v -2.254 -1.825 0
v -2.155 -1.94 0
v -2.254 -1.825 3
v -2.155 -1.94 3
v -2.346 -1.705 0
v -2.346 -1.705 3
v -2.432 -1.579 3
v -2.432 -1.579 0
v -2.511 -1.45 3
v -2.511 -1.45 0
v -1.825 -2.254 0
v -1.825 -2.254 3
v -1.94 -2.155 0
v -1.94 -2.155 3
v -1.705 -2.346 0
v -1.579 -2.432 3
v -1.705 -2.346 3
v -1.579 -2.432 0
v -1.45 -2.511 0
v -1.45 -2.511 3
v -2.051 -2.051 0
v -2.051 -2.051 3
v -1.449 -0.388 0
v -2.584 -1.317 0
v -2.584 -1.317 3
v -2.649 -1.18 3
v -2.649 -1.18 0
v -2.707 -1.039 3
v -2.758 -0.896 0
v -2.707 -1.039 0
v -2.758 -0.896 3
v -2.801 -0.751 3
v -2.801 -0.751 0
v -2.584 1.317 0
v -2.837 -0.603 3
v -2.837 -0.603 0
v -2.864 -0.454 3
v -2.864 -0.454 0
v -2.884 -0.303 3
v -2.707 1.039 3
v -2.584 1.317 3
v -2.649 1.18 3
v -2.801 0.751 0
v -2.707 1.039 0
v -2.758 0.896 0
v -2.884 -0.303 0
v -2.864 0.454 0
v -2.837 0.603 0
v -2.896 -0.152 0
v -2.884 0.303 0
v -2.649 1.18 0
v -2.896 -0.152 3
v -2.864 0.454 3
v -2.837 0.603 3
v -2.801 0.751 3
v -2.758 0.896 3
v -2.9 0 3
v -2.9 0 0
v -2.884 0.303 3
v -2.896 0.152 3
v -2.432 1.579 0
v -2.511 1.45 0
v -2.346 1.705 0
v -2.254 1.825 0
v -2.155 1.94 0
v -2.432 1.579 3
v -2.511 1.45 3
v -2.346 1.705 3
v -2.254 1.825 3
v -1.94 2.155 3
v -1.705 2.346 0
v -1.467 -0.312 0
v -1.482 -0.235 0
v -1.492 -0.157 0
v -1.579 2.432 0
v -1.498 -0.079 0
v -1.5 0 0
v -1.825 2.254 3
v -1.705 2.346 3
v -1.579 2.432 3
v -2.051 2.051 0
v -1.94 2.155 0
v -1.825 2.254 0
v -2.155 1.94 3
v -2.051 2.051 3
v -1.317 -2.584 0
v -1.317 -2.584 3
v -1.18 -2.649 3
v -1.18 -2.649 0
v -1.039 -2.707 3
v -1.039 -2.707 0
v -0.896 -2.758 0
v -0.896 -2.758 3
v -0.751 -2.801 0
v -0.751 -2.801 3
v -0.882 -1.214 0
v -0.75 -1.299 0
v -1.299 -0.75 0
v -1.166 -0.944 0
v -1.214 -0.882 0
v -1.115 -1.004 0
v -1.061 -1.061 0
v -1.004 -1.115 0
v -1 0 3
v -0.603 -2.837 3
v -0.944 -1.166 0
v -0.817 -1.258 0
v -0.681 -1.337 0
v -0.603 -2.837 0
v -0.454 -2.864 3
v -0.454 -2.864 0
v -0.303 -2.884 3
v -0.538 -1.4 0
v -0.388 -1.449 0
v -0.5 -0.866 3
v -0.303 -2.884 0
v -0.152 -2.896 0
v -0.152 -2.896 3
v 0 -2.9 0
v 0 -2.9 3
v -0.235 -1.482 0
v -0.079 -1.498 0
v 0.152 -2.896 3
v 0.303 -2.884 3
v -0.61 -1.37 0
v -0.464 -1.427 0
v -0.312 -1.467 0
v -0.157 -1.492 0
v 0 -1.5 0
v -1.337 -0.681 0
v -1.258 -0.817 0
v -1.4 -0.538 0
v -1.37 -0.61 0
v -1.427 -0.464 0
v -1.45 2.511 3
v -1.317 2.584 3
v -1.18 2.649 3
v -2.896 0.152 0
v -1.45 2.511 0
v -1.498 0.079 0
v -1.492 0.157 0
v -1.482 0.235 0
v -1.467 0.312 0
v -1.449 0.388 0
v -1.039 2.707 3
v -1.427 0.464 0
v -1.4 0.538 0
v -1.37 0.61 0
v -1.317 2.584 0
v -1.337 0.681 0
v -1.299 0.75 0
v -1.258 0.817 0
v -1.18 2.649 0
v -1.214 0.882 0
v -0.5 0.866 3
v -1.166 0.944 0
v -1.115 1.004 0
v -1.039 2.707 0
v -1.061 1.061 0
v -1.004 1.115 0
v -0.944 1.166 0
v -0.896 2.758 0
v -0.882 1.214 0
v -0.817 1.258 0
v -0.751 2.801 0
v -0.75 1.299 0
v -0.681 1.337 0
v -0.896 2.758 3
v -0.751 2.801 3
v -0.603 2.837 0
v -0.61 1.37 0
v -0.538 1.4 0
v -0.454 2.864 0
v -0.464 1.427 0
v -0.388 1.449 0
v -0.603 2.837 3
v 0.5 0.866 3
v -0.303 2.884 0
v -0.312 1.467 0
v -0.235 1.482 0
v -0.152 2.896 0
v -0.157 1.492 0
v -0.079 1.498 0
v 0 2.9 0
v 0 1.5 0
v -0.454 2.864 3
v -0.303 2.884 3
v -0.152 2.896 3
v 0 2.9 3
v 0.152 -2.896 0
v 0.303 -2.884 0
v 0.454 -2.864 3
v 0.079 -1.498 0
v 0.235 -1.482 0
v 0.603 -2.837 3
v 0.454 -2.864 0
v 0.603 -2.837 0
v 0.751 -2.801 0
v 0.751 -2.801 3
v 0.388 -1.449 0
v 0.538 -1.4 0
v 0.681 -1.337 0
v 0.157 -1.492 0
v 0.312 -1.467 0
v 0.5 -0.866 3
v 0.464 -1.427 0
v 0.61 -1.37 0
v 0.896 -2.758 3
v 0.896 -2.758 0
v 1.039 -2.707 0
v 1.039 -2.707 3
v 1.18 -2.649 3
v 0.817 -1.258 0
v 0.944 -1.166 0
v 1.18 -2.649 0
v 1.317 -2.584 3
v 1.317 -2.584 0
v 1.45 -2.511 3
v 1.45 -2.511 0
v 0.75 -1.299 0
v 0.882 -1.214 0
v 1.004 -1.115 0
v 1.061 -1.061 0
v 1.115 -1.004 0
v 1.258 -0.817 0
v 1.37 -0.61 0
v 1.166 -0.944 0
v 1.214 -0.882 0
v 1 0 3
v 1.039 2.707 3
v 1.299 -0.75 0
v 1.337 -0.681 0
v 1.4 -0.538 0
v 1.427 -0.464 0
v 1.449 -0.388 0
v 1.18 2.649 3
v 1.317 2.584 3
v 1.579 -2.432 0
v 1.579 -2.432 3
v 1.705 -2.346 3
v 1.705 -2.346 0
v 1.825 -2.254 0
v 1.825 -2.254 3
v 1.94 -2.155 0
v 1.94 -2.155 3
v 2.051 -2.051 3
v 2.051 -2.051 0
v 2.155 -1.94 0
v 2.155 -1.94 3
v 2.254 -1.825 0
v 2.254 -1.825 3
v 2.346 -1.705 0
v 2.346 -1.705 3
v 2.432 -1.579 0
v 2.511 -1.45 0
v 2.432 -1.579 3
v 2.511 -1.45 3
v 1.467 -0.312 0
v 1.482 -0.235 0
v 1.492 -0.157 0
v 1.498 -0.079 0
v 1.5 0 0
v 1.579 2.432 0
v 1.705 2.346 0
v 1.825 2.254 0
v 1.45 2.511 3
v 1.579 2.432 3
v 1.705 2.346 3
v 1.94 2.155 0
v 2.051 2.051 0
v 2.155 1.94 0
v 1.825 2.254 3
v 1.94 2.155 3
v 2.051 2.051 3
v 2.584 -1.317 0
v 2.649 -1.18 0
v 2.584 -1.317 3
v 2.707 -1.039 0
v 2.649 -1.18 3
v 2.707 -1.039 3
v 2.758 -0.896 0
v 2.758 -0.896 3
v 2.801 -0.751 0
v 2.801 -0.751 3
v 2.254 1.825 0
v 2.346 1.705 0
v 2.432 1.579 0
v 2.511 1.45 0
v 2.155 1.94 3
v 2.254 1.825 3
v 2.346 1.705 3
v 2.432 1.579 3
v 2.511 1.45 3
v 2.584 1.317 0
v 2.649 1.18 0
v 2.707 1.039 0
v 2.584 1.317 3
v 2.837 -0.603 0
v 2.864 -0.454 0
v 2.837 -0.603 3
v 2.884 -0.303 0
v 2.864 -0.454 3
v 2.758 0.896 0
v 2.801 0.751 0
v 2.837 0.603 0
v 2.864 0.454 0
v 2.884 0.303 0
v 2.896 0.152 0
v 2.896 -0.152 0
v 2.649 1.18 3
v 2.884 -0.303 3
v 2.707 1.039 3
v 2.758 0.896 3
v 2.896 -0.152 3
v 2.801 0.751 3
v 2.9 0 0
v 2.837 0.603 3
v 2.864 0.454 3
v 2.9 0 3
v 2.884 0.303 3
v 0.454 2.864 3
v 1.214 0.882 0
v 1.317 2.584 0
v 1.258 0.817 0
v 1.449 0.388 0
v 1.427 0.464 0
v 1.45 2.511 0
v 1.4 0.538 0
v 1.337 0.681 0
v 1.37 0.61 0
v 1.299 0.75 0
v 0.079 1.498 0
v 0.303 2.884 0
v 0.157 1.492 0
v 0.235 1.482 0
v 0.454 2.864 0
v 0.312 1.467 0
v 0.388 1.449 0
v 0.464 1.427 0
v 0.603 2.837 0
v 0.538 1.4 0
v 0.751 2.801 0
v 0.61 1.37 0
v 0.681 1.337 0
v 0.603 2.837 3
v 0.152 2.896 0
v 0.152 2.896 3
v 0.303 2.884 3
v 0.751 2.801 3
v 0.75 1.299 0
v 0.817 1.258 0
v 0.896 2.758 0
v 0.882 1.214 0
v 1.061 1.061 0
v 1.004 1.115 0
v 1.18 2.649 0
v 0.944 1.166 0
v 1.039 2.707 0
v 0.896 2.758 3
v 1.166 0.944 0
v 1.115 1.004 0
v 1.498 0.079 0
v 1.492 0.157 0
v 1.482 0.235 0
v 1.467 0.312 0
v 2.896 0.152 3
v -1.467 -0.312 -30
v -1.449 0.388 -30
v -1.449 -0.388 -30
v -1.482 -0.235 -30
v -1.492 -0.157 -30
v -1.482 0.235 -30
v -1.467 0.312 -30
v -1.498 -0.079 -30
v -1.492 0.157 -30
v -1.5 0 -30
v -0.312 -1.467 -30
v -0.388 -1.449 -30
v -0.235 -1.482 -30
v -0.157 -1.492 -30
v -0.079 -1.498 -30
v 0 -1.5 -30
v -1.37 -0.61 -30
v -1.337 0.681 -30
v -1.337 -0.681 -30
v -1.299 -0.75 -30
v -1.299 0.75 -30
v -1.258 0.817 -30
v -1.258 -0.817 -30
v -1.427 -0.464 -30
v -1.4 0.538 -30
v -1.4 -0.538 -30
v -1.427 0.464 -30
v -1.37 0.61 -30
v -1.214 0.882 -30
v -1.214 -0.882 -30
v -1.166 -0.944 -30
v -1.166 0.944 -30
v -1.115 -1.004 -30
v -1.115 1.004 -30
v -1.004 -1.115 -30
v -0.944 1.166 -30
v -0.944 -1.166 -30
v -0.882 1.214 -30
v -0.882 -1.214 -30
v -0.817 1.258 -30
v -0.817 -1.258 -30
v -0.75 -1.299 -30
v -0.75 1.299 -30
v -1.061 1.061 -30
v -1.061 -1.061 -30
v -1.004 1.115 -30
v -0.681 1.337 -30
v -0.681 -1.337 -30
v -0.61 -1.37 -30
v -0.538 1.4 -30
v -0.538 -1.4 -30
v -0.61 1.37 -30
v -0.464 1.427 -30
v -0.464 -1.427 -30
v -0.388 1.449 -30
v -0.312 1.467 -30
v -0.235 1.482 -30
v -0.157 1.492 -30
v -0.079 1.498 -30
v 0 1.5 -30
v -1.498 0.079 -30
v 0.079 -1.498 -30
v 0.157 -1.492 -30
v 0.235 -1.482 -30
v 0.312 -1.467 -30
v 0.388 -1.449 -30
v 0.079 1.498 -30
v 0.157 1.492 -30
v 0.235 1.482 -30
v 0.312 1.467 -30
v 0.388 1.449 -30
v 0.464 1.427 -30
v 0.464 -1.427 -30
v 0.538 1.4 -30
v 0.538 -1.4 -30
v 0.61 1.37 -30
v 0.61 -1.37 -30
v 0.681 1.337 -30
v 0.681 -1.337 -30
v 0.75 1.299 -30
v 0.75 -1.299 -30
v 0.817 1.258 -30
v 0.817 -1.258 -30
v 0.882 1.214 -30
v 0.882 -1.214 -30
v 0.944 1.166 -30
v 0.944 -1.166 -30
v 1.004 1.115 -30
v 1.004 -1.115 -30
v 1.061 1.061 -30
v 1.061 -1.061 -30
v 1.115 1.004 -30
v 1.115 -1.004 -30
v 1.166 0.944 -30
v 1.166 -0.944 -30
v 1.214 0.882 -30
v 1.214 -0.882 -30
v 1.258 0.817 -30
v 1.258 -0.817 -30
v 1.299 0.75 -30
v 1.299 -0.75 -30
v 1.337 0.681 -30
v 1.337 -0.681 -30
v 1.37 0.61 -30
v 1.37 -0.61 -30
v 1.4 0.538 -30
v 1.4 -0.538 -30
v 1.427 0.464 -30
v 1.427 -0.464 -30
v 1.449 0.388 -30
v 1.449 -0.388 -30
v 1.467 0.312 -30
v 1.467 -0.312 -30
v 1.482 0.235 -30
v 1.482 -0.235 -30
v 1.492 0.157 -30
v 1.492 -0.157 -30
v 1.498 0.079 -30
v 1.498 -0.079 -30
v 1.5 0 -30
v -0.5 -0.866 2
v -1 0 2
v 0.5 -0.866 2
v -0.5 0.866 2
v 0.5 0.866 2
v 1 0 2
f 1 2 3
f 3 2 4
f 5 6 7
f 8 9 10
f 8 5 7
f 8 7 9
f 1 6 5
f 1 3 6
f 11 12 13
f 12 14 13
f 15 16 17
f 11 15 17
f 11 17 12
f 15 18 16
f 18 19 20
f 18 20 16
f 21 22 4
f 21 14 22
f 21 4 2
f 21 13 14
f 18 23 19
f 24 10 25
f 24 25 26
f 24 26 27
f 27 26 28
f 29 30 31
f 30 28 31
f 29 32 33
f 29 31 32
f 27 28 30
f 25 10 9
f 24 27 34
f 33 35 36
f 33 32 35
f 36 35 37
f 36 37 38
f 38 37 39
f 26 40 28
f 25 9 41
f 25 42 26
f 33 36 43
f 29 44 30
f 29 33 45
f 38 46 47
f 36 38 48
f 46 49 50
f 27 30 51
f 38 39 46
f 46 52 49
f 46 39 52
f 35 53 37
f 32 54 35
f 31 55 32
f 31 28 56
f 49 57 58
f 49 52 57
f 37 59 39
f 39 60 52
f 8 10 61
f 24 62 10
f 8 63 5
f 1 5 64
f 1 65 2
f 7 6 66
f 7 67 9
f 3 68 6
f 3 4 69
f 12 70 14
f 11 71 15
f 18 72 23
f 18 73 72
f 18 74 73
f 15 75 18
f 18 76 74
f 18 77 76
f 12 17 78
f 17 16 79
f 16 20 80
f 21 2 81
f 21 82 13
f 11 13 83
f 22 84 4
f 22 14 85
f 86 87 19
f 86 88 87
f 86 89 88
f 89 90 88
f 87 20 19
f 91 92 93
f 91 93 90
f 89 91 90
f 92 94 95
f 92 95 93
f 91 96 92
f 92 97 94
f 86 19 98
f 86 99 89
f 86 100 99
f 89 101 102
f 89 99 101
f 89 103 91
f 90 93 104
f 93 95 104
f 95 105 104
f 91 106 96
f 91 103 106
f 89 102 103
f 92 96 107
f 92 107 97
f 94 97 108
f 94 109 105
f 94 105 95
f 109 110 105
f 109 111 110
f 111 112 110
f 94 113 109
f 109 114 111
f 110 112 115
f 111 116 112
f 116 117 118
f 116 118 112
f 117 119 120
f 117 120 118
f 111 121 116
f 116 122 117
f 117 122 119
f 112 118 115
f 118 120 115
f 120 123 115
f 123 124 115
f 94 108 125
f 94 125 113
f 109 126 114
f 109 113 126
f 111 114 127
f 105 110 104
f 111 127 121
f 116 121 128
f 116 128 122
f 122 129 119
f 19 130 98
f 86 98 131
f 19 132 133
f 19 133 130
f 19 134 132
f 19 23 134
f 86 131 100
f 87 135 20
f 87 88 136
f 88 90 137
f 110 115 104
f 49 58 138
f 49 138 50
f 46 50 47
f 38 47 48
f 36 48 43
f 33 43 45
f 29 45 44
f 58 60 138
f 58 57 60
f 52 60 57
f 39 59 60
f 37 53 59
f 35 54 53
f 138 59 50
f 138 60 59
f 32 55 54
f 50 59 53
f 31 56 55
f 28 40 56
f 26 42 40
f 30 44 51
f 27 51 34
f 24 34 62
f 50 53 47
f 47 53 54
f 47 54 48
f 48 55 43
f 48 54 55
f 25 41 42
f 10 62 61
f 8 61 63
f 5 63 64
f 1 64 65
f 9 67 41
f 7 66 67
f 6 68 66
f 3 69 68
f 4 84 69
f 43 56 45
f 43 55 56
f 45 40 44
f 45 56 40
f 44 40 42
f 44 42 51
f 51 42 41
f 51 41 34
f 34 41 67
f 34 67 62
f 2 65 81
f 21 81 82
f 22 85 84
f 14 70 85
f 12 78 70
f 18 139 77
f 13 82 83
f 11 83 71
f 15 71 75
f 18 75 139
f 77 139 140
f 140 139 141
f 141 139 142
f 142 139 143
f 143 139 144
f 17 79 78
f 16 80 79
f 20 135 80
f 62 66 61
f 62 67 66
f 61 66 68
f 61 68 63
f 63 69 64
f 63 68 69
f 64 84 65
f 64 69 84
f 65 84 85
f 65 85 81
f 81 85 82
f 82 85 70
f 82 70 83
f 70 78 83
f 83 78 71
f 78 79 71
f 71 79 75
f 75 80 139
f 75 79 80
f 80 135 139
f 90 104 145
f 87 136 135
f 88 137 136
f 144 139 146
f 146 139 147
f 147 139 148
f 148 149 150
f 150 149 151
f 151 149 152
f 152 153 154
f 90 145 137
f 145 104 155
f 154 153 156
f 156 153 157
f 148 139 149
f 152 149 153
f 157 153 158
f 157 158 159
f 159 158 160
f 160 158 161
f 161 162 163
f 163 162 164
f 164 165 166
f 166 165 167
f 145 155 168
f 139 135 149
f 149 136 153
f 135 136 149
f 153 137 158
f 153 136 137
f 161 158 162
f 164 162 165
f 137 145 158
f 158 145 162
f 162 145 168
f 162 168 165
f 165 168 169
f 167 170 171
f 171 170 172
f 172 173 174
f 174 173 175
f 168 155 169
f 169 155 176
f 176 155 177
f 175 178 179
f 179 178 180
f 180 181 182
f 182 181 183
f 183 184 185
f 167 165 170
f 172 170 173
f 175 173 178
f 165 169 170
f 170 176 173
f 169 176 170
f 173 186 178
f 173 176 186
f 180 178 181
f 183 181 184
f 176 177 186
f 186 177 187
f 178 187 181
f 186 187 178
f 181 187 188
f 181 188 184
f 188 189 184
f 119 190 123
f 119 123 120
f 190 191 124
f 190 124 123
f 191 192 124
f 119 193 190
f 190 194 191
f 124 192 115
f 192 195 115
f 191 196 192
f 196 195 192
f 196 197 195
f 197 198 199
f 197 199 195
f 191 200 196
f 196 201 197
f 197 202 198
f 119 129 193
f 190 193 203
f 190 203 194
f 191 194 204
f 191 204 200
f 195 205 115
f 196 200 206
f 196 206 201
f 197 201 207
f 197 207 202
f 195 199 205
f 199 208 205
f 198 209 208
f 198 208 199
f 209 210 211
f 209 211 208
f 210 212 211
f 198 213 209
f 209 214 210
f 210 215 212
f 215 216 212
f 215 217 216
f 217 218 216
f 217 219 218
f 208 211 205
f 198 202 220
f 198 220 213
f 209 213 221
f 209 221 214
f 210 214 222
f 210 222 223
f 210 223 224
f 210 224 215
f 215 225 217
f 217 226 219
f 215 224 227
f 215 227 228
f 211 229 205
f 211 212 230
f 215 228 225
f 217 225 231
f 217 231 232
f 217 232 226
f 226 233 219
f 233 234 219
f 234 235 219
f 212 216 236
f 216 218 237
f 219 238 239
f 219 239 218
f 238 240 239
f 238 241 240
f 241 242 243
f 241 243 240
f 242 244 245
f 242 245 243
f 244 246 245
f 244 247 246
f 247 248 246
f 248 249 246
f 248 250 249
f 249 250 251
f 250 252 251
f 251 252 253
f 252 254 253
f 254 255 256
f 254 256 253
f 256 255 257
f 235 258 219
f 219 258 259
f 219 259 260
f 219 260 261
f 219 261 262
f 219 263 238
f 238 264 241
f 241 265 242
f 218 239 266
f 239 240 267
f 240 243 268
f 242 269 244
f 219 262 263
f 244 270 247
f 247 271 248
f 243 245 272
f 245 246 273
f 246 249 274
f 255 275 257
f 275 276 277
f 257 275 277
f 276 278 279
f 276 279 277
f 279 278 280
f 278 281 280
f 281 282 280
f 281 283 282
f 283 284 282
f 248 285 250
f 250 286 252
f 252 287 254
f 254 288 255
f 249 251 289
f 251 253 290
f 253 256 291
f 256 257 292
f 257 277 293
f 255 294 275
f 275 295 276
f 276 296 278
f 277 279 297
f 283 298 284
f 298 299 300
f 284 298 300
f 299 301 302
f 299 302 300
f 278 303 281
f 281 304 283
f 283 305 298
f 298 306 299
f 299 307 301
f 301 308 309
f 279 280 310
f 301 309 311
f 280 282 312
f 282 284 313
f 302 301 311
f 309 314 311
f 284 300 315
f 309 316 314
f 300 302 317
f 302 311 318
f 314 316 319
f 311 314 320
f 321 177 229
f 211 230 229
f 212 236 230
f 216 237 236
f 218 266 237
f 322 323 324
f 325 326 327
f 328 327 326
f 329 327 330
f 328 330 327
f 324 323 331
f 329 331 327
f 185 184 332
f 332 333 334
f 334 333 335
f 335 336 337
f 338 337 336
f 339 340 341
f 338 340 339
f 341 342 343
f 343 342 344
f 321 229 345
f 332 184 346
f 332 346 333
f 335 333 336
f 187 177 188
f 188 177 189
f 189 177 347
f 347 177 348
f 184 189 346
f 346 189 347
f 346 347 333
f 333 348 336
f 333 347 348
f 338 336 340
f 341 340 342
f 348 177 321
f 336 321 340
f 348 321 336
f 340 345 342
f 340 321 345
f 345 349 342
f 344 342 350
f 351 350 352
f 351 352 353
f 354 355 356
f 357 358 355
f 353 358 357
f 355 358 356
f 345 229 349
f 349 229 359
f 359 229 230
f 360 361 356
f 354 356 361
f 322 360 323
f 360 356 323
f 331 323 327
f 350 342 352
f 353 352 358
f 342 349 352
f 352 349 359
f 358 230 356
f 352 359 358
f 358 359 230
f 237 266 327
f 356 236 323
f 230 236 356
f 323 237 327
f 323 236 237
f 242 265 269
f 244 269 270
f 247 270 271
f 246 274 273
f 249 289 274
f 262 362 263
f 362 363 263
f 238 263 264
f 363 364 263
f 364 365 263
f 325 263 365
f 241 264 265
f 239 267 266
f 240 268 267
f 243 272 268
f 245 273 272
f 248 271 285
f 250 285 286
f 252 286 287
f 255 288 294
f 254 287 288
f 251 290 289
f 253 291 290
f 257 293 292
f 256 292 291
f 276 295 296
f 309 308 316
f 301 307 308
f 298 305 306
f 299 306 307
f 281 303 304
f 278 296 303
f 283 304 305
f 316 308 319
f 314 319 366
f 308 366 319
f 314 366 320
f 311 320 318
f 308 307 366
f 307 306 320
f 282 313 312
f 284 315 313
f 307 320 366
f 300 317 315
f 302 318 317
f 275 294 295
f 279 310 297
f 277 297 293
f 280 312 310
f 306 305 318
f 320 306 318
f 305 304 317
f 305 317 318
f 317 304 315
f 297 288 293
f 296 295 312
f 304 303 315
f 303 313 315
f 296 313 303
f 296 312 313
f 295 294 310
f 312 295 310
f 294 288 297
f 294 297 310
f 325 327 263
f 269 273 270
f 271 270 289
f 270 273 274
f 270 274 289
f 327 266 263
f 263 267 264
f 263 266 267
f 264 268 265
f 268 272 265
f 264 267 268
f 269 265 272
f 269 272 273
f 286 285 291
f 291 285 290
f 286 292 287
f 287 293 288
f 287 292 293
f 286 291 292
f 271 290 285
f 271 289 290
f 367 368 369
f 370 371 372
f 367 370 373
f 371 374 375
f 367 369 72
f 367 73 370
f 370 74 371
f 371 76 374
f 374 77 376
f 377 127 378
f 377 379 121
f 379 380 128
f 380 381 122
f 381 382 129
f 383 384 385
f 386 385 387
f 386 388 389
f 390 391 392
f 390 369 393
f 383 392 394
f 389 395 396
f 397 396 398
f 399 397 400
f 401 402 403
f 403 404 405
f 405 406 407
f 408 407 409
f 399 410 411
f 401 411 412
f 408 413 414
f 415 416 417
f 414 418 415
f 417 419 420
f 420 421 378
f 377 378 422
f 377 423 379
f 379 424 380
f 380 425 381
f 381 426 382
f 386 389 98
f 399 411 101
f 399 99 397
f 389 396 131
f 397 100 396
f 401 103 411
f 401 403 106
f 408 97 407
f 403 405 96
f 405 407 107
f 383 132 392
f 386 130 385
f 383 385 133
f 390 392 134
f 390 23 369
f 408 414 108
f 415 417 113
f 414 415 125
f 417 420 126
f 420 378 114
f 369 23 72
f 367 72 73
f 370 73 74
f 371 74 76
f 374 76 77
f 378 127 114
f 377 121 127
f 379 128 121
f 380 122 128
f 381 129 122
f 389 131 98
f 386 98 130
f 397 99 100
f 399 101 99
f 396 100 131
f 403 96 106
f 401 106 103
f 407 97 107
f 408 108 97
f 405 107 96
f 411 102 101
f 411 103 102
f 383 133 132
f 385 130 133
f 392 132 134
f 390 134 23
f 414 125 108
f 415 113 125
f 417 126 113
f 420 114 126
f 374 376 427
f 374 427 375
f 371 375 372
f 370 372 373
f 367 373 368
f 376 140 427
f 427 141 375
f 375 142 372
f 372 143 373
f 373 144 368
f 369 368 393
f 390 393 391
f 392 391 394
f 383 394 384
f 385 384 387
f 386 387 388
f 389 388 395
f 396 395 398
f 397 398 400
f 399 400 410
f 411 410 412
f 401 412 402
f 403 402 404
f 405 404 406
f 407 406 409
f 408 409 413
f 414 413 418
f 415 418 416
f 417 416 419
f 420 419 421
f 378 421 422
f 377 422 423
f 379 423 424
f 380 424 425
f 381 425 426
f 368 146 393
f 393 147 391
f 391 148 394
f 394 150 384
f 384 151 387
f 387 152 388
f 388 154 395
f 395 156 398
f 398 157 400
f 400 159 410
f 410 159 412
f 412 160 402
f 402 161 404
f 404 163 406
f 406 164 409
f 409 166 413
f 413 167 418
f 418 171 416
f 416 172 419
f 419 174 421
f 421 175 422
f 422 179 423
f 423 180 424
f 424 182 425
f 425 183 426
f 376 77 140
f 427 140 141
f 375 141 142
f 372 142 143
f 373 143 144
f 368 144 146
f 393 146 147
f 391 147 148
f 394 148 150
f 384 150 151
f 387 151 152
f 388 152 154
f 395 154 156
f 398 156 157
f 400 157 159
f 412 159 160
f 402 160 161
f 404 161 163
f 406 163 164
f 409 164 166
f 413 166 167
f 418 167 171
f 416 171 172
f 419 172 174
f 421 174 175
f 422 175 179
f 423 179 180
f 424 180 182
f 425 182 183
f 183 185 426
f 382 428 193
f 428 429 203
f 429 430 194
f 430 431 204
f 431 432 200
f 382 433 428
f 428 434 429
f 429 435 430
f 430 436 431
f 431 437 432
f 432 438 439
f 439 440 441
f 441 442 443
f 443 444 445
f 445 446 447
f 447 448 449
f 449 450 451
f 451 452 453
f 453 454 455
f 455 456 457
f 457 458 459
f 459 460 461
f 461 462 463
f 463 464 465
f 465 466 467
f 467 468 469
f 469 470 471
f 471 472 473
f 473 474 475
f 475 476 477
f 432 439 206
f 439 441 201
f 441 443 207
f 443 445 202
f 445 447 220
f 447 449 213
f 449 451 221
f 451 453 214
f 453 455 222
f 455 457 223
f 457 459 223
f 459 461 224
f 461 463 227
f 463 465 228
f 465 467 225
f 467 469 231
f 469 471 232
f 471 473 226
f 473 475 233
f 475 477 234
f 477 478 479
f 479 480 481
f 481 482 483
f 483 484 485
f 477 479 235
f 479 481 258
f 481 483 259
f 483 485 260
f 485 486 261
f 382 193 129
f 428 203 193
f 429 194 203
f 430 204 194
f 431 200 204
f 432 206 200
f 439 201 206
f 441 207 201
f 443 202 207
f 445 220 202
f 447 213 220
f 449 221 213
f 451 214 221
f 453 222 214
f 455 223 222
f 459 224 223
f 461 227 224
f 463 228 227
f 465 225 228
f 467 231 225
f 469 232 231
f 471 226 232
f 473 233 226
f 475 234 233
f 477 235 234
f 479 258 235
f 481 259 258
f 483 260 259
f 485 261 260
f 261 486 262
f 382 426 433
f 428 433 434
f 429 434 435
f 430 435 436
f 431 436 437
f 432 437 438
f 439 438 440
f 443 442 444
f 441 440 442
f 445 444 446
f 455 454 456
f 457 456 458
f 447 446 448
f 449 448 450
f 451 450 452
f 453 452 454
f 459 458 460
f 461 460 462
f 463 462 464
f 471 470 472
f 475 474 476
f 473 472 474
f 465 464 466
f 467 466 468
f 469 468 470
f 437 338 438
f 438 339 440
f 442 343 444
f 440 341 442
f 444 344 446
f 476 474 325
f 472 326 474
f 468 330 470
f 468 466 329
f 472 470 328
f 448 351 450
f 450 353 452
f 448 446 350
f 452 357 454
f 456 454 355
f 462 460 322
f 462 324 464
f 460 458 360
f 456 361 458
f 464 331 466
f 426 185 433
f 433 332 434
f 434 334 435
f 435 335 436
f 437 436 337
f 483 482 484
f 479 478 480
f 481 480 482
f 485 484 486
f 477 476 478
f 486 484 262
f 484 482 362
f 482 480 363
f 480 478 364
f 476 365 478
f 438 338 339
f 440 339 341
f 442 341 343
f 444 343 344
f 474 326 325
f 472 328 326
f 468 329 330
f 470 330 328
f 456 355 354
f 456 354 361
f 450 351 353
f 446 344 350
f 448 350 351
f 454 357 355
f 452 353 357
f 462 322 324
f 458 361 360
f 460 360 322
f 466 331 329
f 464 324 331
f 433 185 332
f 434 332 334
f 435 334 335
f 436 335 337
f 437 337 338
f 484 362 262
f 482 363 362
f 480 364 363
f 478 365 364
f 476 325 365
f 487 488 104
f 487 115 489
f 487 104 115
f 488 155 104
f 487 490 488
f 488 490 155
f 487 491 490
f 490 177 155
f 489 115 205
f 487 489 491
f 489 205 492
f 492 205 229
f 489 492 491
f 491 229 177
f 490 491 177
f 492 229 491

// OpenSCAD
// file: C:/gh/oomlout_oobb_part_motor_gearbox_wave_drive_version_5/parts/oobb_part_motor_gearbox_wave_drive_version_5_12_to_1_reduction/compact_helpers.scad
// Reusable native geometry helpers.
function polar(r,a)=[r*cos(a),r*sin(a)];
function rotate_point(p,a)=[p[0]*cos(a)-p[1]*sin(a),p[0]*sin(a)+p[1]*cos(a)];
function profile_point(t)=let(
    s=sqrt(pow(pitch_radius,2)-pow(eccentricity*sin(cavity_count*t),2)),
    r=eccentricity*cos(cavity_count*t)+s,
    xi=atan2(eccentricity*cavity_count*sin(cavity_count*t),s),
    rr=roller_radius+profile_clearance)
    [r*cos(t)+rr*cos(t+xi),r*sin(t)+rr*sin(t+xi)];
function profile_points(upper=false)=[for(i=[0:cavity_count*profile_samples_per_cavity-1])
    rotate_point(profile_point(360*i/(cavity_count*profile_samples_per_cavity)),0)];
function roller_position(i,a,upper=false)=let(
    t=-a/roller_count+360*i/roller_count,
    rel=t-a-(upper?180:0),
    r=eccentricity*cos(rel)+sqrt(pow(pitch_radius,2)-pow(eccentricity*sin(rel),2))) polar(r,t);
module tube(ro,ri,h) { difference() { cylinder(r=ro,h=h); translate([0,0,-eps]) cylinder(r=ri,h=h+2*eps); } }
module screw_hole(size,h) { scale([1,1,h]) { if(size=="m2") oobb_hole_m2(); if(size=="m3") oobb_hole_m3(); if(size=="m6") oobb_hole_m6(); } }
module socket_recess(size,depth) {
    // OOBB socket head starts at the under-head plane and extends outward.
    scale([1,1,depth/(size=="m3"?3.2:2.2)]) {
        if(size=="m3") oobb_socket_m3(); else oobb_socket_m2();
    }
}
module at_mounts(points) { for(p=points) translate([p[0],p[1],0]) children(); }
module shaft_cut(h,fit=shaft_fit_clearance) {
    linear_extrude(h) intersection() {
        circle(r=input_shaft_diameter/2+fit);
        translate([-10,-10]) square([10+input_shaft_diameter/2-input_shaft_flat_depth+fit,20]);
    }
}
module rounded_rectangle_plate(size=[119,119,3],radius=1.5) {
    hull() for(x=[-1,1],y=[-1,1]) translate([x*(size[0]/2-radius),y*(size[1]/2-radius),0]) cylinder(r=radius,h=size[2]);
}
module grid_cuts(h) {
    // Actual OOBB grid centres: six units are centred on half-pitch offsets.
    for(i=[0:base_width-1],j=[0:base_height-1])
        let(x=(i-(base_width-1)/2)*oobb_grid_pitch,y=(j-(base_height-1)/2)*oobb_grid_pitch)
        if(sqrt(x*x+y*y)>housing_radius+3.5)
            translate([x,y,-eps]) screw_hole("m6",h+2*eps);
}
module wave_generator() {
    render(convexity=20) difference() {
        tube(wave_radius,12.6,wave_height);
        translate([0,0,wave_seat_z]) cylinder(r=13.5+bearing_seat_clearance,h=wave_height);
        translate([0,0,wave_height-wave_cap_depth]) cylinder(r=22.15,h=wave_cap_depth+eps);
        at_mounts(wave_mounts) {
            translate([0,0,-eps]) screw_hole("m3",wave_height+2*eps);
            translate([0,0,wave_nut_z]) scale([1,1,(wave_height-wave_cap_depth-wave_nut_z+eps)/2.7]) oobb_nut_m3();
        }
    }
}
module wave_cap() {
    render(convexity=20) difference() {
        tube(22,12.6,wave_cap_depth);
        at_mounts(wave_mounts) {
            translate([0,0,-eps]) screw_hole("m3",wave_cap_depth+2*eps);
            translate([0,0,wave_cap_depth-wave_head_recess]) socket_recess("m3",wave_head_recess+eps);
        }
    }
}
// file: C:/gh/oomlout_oobb_part_motor_gearbox_wave_drive_version_5/parts/oobb_part_motor_gearbox_wave_drive_version_5_12_to_1_reduction/oobb_hardware.scad
module oobb_rounded_rectangle_edges(size, radius, radius_top, radius_bottom) {
      rt=radius_top; rb=radius_bottom; depth=size[2]; n=16;
      lower=rb==0 ? [[radius,0]] :
        [for(i=[0:n]) let(a=-90+90*i/n) [radius-rb+rb*cos(a),rb+rb*sin(a)]];
      upper=rt==0 ? [[radius,depth]] :
        [for(i=[0:n]) let(a=90*i/n) [radius-rt+rt*cos(a),depth-rt+rt*sin(a)]];
      hull() for(x=[-size[0]/2+radius,size[0]/2-radius])
        for(y=[-size[1]/2+radius,size[1]/2-radius])
          translate([x,y,0]) rotate_extrude()
            polygon(concat([[0,0]],lower,upper,[[0,depth]]));
    }
// Generated from installed OOBB v5. All primitives use overhang=True.

module oobb_motor_plate_body() {


difference() {
	union() {
		translate(v = [0, 0, 0]) {
			rotate(a = [0, 0, 0]) {
				difference() {
					union() {
						oobb_rounded_rectangle_edges(radius = 1.5, radius_bottom = 1.5, radius_top = 1.5, size = [89.0, 89.0, 4.0]);
					}
					union();
				}
			}
		}
	}
	union();
}

}

module oobb_hole_m2() {


difference() {
	union() {
		cylinder(h = 1, r = 1.35);
	}
	union();
}

}

module oobb_hole_m3() {


difference() {
	union() {
		cylinder(h = 1, r = 1.8);
	}
	union();
}

}

module oobb_hole_m6() {


difference() {
	union() {
		cylinder(h = 1, r = 3.25);
	}
	union();
}

}

module oobb_nut_m2() {


difference() {
	union() {
		translate(v = [0, 0, 0]) {
			rotate(a = [0, 0, 0]) {
				difference() {
					union() {
						linear_extrude(height = 2.2) {
							polygon(points = [[2.4234, 0.0], [1.2117000000000002, 2.0987259635312085], [-1.2116999999999996, 2.0987259635312085], [-2.4234, 2.967809053053696e-16], [-1.211700000000001, -2.098725963531208], [1.2116999999999984, -2.0987259635312094]]);
						}
						translate(v = [-1.25, -2.75, -0.3]) {
							cube(size = [2.5, 5.5, 0.3]);
						}
						translate(v = [-1.25, -1.25, -0.6]) {
							cube(size = [2.5, 2.5, 0.3]);
						}
						translate(v = [-1.25, -2.75, 2.2]) {
							cube(size = [2.5, 5.5, 0.3]);
						}
						translate(v = [-1.25, -1.25, 2.5]) {
							cube(size = [2.5, 2.5, 0.3]);
						}
					}
					union();
				}
			}
		}
	}
	union();
}

}

module oobb_socket_m2() {


difference() {
	union() {
		translate(v = [0, 0, 0]) {
			rotate(a = [0, 0, 0]) {
				difference() {
					union() {
						cylinder(h = 2.2, r = 2.1);
						translate(v = [-1.25, -2.75, -0.3]) {
							cube(size = [2.5, 5.5, 0.3]);
						}
						translate(v = [-1.25, -1.25, -0.6]) {
							cube(size = [2.5, 2.5, 0.3]);
						}
					}
					union();
				}
			}
		}
	}
	union();
}

}

module oobb_nut_m3() {


difference() {
	union() {
		translate(v = [0, 0, 0]) {
			rotate(a = [0, 0, 0]) {
				difference() {
					union() {
						linear_extrude(height = 2.7) {
							polygon(points = [[3.4619999999999997, 0.0], [1.7310000000000003, 2.9981799479017264], [-1.7309999999999992, 2.9981799479017264], [-3.4619999999999997, 4.2397272186481365e-16], [-1.7310000000000014, -2.998179947901726], [1.7309999999999977, -2.9981799479017277]]);
						}
						translate(v = [-1.75, -3.25, -0.3]) {
							cube(size = [3.5, 6.5, 0.3]);
						}
						translate(v = [-1.75, -1.75, -0.6]) {
							cube(size = [3.5, 3.5, 0.3]);
						}
						translate(v = [-1.75, -3.25, 2.7]) {
							cube(size = [3.5, 6.5, 0.3]);
						}
						translate(v = [-1.75, -1.75, 3.0]) {
							cube(size = [3.5, 3.5, 0.3]);
						}
					}
					union();
				}
			}
		}
	}
	union();
}

}

module oobb_socket_m3() {


difference() {
	union() {
		translate(v = [0, 0, 0]) {
			rotate(a = [0, 0, 0]) {
				difference() {
					union() {
						cylinder(h = 3.2, r = 3.0);
						translate(v = [-1.75, -3.25, -0.3]) {
							cube(size = [3.5, 6.5, 0.3]);
						}
						translate(v = [-1.75, -1.75, -0.6]) {
							cube(size = [3.5, 3.5, 0.3]);
						}
					}
					union();
				}
			}
		}
	}
	union();
}

}

module oobb_nut_m6() {


difference() {
	union() {
		translate(v = [0, 0, 0]) {
			rotate(a = [0, 0, 0]) {
				difference() {
					union() {
						linear_extrude(height = 5.2) {
							polygon(points = [[5.914249999999999, 0.0], [2.957125, 5.1218907443321156], [-2.9571249999999982, 5.1218907443321156], [-5.914249999999999, 7.242867331857232e-16], [-2.9571250000000022, -5.121890744332115], [2.9571249999999956, -5.121890744332118]]);
						}
						translate(v = [-2.875, -5.0, -0.3]) {
							cube(size = [5.75, 10, 0.3]);
						}
						translate(v = [-2.875, -2.875, -0.6]) {
							cube(size = [5.75, 5.75, 0.3]);
						}
						translate(v = [-2.875, -5.0, 5.2]) {
							cube(size = [5.75, 10, 0.3]);
						}
						translate(v = [-2.875, -2.875, 5.5]) {
							cube(size = [5.75, 5.75, 0.3]);
						}
					}
					union();
				}
			}
		}
	}
	union();
}

}
// file: C:/gh/oomlout_oobb_part_motor_gearbox_wave_drive_version_5/parts/oobb_part_motor_gearbox_wave_drive_version_5_12_to_1_reduction/parameters.scad
// Generated by working_scad.py. Edit the Python recipe to persist changes.
style = "version_5";
reduction = 12;
bearing_output = "6810";
bearing_wave = "6704";
roller_diameter = 7.0;
roller_bore_diameter = 3.2;
roller_length = 12.0;
roller_material = "nylon";
roller_bank_count = 1;
motor_plate_depth = 4.0;
motor_body_depth = 40.0;
motor_shaft_length = 24.0;
motor_hole_pitch = 31.0;
motor_thread_depth = 6.0;
motor_pilot_diameter = 22.0;
motor_pilot_height = 2.0;
output_holder_wall = 7.0;
max_screw_length = 35.0;
eccentricity = 0.75;
wave_radius = 23.25;
profile_clearance = 0.15;
roller_slot_clearance = 0.3;
roller_end_clearance = 0.3;
cage_wall = 4.0;
cage_plate_depth = 3.0;
bearing_seat_clearance = 0.1;
journal_clearance = 0.05;
bearing_axial_clearance = 0.2;
output_plate_diameter = 65.0;
output_plate_depth = 6.0;
output_grid_pitch = 15.0;
output_face_clearance = 0.3;
output_socket_recess = 4.0;
output_screw_length = 16;
output_nut_depth = 5.2;
output_nut_height = 5.0;
motor_shaft_end_clearance = 0.5;
base_width = 6;
base_height = 6;
oobb_grid_pitch = 15.0;
oobb_size_allowance = 1.0;
base_edge_radius = 1.5;
housing_flange_corner_radius = 1.5;
housing_screw_pitch_radius = 35.5;
housing_screw_count = 6;
input_shaft_diameter = 5.0;
input_shaft_flat_depth = 0.5;
shaft_fit_clearance = 0.1;
cage_screw_count = 4;
profile_samples_per_cavity = 100;
circle_fragments = 120;
overhang = true;
run_scad = true;
run_solidcraft = false;
generate_stl = true;
generate_previews = true;
generate_renders = true;
validate_geometry = true;
package_outputs = true;
render_threads = 8;
variant = "default";
// main file
include <C:/gh/oomlout_oobb_part_motor_gearbox_wave_drive_version_5/parts/oobb_part_motor_gearbox_wave_drive_version_5_12_to_1_reduction/parameters.scad>
include <C:/gh/oomlout_oobb_part_motor_gearbox_wave_drive_version_5/parts/oobb_part_motor_gearbox_wave_drive_version_5_12_to_1_reduction/oobb_hardware.scad>
include <C:/gh/oomlout_oobb_part_motor_gearbox_wave_drive_version_5/parts/oobb_part_motor_gearbox_wave_drive_version_5_12_to_1_reduction/geometry.scad>
difference() { 

difference() {
	union() {
		translate(v = [0, 0, 0]) {
			rotate(a = [0, 0, 0]) {
				difference() {
					union() {
						cylinder(h = 3, r = 2.9);
						translate(v = [0, 0, -30.0]) {
							cylinder(h = 30, r = 1.5);
						}
					}
					union();
				}
			}
		}
	}
	union();
}
 translate([0,0,2]) cylinder(r=1.0,h=1.01,$fn=6); }
